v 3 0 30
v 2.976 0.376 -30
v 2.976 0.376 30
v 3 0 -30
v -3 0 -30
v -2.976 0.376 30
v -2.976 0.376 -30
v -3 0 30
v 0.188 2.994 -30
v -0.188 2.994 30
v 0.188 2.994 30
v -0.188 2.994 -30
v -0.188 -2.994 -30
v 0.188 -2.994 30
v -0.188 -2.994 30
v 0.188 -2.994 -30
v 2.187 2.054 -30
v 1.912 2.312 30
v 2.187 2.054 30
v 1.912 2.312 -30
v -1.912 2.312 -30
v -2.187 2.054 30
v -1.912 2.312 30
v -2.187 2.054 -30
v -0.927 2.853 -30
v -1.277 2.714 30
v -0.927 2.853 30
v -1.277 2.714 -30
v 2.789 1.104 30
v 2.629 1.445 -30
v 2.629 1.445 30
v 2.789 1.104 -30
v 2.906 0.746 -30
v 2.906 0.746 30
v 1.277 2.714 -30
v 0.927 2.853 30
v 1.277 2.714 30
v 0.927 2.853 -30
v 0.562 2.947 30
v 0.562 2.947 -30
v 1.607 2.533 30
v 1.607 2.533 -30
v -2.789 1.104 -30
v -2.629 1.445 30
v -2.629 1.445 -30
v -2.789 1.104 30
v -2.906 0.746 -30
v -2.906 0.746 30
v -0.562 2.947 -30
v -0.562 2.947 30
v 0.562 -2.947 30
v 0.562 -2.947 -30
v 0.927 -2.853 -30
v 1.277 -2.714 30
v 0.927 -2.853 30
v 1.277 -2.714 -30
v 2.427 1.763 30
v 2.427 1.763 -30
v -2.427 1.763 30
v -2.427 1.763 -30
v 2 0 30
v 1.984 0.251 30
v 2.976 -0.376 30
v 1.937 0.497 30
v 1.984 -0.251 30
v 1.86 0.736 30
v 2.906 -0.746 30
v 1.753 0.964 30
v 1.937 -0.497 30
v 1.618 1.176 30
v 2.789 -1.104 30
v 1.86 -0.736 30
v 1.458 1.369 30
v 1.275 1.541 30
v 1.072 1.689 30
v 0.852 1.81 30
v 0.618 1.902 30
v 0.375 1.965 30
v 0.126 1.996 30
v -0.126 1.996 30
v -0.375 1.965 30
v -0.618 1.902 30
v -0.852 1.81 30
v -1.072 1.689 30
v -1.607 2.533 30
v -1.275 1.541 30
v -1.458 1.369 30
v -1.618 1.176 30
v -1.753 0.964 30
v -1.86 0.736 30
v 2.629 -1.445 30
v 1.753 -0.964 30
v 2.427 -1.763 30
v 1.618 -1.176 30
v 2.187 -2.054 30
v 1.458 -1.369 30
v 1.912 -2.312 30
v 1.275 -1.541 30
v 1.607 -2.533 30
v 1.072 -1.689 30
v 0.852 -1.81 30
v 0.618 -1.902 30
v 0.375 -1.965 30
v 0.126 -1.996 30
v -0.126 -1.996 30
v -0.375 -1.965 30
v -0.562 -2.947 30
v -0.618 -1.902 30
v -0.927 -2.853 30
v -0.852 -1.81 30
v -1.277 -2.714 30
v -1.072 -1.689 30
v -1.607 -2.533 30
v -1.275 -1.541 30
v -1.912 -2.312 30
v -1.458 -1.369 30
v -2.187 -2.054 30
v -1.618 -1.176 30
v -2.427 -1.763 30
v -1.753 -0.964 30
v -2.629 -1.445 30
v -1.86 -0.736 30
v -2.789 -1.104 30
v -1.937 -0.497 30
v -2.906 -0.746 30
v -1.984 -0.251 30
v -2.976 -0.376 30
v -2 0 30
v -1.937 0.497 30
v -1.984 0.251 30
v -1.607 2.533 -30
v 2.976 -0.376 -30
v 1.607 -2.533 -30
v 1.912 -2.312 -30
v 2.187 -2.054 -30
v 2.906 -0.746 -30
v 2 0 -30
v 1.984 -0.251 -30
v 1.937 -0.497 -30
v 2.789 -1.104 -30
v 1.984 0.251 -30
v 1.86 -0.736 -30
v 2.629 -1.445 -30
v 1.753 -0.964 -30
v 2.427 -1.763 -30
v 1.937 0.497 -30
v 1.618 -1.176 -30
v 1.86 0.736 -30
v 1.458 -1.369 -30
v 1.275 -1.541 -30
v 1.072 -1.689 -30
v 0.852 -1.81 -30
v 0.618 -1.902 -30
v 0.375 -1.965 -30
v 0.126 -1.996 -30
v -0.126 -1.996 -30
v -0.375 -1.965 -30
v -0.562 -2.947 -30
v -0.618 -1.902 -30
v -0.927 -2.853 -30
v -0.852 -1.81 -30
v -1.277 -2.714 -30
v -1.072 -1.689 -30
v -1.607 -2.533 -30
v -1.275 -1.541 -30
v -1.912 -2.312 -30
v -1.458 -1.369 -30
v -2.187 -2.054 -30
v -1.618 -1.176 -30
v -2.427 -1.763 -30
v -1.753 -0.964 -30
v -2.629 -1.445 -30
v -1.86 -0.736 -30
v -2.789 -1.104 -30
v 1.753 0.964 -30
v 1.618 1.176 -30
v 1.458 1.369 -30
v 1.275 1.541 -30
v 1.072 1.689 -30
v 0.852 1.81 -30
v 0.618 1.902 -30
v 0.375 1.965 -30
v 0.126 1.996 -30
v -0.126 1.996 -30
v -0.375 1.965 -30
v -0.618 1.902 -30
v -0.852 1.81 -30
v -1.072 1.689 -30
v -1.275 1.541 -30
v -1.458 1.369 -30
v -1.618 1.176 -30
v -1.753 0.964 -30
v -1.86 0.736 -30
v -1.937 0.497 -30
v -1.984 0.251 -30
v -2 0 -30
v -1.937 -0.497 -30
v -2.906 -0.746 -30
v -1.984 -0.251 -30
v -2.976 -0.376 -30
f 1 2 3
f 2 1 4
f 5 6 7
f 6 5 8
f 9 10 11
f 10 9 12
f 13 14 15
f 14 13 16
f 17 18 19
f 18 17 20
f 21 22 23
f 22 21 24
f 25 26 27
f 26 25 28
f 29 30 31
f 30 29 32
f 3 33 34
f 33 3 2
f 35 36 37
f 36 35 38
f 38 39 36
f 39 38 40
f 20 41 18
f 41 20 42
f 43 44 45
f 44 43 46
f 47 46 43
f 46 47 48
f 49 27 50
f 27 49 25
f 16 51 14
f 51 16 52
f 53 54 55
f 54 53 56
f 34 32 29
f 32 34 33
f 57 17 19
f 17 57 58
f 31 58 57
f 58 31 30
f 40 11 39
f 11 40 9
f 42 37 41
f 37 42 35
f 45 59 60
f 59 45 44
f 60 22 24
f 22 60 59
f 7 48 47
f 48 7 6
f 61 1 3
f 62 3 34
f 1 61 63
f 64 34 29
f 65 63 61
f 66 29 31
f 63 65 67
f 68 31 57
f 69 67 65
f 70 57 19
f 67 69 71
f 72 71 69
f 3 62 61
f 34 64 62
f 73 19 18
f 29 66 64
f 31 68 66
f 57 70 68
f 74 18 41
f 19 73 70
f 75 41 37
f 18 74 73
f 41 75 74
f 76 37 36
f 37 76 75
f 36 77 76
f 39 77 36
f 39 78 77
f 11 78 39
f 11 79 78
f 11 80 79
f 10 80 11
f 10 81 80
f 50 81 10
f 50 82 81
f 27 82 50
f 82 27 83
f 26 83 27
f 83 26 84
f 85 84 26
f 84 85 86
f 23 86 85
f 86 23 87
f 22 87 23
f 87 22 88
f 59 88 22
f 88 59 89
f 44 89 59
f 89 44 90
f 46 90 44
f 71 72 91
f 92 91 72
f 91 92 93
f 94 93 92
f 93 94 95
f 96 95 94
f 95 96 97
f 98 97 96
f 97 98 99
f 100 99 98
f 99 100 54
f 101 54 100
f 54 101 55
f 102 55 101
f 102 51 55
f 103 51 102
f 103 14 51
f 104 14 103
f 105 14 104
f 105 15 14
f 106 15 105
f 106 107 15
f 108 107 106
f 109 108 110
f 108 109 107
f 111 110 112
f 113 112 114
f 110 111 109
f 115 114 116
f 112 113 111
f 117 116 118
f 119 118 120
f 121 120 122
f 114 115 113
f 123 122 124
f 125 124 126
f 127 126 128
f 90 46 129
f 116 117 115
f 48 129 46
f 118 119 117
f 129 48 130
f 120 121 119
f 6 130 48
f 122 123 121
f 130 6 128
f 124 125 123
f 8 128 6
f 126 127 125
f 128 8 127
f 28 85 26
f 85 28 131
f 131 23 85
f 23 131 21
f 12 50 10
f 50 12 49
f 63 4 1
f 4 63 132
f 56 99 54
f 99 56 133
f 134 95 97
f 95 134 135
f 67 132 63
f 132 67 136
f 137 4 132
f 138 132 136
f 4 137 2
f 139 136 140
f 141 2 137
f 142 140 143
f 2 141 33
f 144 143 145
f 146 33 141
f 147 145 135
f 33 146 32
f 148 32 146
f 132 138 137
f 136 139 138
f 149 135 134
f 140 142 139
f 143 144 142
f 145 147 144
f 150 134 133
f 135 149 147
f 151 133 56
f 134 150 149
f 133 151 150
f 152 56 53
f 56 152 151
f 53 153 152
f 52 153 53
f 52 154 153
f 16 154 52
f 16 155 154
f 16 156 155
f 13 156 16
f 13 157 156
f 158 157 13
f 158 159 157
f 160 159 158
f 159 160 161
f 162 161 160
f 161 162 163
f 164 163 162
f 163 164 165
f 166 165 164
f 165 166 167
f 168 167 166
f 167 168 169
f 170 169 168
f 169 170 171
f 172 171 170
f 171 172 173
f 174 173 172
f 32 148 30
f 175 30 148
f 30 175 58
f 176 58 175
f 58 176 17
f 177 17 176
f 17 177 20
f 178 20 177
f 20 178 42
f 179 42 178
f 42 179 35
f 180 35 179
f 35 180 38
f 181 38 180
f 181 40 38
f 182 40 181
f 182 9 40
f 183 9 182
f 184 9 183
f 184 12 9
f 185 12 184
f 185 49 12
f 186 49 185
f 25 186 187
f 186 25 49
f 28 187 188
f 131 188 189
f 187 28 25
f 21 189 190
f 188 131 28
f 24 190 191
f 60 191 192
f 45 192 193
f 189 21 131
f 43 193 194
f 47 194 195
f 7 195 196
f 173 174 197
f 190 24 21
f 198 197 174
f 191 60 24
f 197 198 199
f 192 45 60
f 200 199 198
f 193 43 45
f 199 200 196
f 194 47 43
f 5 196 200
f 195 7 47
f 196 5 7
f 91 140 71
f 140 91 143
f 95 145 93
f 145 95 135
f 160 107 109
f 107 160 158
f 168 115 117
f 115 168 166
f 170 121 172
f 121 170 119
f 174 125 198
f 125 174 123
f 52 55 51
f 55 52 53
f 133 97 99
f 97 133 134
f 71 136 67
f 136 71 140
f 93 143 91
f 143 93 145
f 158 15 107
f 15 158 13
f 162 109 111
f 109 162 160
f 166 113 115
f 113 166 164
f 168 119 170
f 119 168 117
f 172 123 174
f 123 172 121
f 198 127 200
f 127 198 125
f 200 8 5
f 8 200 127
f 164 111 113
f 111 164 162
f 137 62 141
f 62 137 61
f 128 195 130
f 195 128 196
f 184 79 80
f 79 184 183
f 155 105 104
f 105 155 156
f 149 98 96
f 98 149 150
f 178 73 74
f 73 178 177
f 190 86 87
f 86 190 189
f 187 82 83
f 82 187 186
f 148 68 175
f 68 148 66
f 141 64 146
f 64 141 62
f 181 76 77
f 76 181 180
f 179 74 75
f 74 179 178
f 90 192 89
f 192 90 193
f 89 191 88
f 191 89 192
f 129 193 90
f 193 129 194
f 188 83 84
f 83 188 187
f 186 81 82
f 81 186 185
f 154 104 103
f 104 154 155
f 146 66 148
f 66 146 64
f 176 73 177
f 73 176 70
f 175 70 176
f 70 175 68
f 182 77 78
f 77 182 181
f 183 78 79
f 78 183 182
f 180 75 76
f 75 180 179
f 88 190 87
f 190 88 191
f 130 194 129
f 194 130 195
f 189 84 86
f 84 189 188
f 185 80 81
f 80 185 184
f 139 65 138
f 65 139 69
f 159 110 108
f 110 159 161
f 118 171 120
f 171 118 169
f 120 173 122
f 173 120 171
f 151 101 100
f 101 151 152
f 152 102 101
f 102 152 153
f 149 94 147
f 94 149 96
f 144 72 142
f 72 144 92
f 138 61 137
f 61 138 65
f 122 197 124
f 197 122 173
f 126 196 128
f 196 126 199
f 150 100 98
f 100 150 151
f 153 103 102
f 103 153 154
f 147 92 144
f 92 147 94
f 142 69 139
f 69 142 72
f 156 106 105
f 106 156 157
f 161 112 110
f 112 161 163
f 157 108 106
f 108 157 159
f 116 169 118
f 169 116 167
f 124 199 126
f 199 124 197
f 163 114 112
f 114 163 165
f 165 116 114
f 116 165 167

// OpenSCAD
$fn = 50;


difference() {
	union() {
		translate(v = [0, 0, -30.0000000000]) {
			cylinder(h = 60, r = 3.0000000000);
		}
	}
	union() {
		translate(v = [0, 0, -100.0000000000]) {
			cylinder(h = 200, r = 2);
		}
	}
}
